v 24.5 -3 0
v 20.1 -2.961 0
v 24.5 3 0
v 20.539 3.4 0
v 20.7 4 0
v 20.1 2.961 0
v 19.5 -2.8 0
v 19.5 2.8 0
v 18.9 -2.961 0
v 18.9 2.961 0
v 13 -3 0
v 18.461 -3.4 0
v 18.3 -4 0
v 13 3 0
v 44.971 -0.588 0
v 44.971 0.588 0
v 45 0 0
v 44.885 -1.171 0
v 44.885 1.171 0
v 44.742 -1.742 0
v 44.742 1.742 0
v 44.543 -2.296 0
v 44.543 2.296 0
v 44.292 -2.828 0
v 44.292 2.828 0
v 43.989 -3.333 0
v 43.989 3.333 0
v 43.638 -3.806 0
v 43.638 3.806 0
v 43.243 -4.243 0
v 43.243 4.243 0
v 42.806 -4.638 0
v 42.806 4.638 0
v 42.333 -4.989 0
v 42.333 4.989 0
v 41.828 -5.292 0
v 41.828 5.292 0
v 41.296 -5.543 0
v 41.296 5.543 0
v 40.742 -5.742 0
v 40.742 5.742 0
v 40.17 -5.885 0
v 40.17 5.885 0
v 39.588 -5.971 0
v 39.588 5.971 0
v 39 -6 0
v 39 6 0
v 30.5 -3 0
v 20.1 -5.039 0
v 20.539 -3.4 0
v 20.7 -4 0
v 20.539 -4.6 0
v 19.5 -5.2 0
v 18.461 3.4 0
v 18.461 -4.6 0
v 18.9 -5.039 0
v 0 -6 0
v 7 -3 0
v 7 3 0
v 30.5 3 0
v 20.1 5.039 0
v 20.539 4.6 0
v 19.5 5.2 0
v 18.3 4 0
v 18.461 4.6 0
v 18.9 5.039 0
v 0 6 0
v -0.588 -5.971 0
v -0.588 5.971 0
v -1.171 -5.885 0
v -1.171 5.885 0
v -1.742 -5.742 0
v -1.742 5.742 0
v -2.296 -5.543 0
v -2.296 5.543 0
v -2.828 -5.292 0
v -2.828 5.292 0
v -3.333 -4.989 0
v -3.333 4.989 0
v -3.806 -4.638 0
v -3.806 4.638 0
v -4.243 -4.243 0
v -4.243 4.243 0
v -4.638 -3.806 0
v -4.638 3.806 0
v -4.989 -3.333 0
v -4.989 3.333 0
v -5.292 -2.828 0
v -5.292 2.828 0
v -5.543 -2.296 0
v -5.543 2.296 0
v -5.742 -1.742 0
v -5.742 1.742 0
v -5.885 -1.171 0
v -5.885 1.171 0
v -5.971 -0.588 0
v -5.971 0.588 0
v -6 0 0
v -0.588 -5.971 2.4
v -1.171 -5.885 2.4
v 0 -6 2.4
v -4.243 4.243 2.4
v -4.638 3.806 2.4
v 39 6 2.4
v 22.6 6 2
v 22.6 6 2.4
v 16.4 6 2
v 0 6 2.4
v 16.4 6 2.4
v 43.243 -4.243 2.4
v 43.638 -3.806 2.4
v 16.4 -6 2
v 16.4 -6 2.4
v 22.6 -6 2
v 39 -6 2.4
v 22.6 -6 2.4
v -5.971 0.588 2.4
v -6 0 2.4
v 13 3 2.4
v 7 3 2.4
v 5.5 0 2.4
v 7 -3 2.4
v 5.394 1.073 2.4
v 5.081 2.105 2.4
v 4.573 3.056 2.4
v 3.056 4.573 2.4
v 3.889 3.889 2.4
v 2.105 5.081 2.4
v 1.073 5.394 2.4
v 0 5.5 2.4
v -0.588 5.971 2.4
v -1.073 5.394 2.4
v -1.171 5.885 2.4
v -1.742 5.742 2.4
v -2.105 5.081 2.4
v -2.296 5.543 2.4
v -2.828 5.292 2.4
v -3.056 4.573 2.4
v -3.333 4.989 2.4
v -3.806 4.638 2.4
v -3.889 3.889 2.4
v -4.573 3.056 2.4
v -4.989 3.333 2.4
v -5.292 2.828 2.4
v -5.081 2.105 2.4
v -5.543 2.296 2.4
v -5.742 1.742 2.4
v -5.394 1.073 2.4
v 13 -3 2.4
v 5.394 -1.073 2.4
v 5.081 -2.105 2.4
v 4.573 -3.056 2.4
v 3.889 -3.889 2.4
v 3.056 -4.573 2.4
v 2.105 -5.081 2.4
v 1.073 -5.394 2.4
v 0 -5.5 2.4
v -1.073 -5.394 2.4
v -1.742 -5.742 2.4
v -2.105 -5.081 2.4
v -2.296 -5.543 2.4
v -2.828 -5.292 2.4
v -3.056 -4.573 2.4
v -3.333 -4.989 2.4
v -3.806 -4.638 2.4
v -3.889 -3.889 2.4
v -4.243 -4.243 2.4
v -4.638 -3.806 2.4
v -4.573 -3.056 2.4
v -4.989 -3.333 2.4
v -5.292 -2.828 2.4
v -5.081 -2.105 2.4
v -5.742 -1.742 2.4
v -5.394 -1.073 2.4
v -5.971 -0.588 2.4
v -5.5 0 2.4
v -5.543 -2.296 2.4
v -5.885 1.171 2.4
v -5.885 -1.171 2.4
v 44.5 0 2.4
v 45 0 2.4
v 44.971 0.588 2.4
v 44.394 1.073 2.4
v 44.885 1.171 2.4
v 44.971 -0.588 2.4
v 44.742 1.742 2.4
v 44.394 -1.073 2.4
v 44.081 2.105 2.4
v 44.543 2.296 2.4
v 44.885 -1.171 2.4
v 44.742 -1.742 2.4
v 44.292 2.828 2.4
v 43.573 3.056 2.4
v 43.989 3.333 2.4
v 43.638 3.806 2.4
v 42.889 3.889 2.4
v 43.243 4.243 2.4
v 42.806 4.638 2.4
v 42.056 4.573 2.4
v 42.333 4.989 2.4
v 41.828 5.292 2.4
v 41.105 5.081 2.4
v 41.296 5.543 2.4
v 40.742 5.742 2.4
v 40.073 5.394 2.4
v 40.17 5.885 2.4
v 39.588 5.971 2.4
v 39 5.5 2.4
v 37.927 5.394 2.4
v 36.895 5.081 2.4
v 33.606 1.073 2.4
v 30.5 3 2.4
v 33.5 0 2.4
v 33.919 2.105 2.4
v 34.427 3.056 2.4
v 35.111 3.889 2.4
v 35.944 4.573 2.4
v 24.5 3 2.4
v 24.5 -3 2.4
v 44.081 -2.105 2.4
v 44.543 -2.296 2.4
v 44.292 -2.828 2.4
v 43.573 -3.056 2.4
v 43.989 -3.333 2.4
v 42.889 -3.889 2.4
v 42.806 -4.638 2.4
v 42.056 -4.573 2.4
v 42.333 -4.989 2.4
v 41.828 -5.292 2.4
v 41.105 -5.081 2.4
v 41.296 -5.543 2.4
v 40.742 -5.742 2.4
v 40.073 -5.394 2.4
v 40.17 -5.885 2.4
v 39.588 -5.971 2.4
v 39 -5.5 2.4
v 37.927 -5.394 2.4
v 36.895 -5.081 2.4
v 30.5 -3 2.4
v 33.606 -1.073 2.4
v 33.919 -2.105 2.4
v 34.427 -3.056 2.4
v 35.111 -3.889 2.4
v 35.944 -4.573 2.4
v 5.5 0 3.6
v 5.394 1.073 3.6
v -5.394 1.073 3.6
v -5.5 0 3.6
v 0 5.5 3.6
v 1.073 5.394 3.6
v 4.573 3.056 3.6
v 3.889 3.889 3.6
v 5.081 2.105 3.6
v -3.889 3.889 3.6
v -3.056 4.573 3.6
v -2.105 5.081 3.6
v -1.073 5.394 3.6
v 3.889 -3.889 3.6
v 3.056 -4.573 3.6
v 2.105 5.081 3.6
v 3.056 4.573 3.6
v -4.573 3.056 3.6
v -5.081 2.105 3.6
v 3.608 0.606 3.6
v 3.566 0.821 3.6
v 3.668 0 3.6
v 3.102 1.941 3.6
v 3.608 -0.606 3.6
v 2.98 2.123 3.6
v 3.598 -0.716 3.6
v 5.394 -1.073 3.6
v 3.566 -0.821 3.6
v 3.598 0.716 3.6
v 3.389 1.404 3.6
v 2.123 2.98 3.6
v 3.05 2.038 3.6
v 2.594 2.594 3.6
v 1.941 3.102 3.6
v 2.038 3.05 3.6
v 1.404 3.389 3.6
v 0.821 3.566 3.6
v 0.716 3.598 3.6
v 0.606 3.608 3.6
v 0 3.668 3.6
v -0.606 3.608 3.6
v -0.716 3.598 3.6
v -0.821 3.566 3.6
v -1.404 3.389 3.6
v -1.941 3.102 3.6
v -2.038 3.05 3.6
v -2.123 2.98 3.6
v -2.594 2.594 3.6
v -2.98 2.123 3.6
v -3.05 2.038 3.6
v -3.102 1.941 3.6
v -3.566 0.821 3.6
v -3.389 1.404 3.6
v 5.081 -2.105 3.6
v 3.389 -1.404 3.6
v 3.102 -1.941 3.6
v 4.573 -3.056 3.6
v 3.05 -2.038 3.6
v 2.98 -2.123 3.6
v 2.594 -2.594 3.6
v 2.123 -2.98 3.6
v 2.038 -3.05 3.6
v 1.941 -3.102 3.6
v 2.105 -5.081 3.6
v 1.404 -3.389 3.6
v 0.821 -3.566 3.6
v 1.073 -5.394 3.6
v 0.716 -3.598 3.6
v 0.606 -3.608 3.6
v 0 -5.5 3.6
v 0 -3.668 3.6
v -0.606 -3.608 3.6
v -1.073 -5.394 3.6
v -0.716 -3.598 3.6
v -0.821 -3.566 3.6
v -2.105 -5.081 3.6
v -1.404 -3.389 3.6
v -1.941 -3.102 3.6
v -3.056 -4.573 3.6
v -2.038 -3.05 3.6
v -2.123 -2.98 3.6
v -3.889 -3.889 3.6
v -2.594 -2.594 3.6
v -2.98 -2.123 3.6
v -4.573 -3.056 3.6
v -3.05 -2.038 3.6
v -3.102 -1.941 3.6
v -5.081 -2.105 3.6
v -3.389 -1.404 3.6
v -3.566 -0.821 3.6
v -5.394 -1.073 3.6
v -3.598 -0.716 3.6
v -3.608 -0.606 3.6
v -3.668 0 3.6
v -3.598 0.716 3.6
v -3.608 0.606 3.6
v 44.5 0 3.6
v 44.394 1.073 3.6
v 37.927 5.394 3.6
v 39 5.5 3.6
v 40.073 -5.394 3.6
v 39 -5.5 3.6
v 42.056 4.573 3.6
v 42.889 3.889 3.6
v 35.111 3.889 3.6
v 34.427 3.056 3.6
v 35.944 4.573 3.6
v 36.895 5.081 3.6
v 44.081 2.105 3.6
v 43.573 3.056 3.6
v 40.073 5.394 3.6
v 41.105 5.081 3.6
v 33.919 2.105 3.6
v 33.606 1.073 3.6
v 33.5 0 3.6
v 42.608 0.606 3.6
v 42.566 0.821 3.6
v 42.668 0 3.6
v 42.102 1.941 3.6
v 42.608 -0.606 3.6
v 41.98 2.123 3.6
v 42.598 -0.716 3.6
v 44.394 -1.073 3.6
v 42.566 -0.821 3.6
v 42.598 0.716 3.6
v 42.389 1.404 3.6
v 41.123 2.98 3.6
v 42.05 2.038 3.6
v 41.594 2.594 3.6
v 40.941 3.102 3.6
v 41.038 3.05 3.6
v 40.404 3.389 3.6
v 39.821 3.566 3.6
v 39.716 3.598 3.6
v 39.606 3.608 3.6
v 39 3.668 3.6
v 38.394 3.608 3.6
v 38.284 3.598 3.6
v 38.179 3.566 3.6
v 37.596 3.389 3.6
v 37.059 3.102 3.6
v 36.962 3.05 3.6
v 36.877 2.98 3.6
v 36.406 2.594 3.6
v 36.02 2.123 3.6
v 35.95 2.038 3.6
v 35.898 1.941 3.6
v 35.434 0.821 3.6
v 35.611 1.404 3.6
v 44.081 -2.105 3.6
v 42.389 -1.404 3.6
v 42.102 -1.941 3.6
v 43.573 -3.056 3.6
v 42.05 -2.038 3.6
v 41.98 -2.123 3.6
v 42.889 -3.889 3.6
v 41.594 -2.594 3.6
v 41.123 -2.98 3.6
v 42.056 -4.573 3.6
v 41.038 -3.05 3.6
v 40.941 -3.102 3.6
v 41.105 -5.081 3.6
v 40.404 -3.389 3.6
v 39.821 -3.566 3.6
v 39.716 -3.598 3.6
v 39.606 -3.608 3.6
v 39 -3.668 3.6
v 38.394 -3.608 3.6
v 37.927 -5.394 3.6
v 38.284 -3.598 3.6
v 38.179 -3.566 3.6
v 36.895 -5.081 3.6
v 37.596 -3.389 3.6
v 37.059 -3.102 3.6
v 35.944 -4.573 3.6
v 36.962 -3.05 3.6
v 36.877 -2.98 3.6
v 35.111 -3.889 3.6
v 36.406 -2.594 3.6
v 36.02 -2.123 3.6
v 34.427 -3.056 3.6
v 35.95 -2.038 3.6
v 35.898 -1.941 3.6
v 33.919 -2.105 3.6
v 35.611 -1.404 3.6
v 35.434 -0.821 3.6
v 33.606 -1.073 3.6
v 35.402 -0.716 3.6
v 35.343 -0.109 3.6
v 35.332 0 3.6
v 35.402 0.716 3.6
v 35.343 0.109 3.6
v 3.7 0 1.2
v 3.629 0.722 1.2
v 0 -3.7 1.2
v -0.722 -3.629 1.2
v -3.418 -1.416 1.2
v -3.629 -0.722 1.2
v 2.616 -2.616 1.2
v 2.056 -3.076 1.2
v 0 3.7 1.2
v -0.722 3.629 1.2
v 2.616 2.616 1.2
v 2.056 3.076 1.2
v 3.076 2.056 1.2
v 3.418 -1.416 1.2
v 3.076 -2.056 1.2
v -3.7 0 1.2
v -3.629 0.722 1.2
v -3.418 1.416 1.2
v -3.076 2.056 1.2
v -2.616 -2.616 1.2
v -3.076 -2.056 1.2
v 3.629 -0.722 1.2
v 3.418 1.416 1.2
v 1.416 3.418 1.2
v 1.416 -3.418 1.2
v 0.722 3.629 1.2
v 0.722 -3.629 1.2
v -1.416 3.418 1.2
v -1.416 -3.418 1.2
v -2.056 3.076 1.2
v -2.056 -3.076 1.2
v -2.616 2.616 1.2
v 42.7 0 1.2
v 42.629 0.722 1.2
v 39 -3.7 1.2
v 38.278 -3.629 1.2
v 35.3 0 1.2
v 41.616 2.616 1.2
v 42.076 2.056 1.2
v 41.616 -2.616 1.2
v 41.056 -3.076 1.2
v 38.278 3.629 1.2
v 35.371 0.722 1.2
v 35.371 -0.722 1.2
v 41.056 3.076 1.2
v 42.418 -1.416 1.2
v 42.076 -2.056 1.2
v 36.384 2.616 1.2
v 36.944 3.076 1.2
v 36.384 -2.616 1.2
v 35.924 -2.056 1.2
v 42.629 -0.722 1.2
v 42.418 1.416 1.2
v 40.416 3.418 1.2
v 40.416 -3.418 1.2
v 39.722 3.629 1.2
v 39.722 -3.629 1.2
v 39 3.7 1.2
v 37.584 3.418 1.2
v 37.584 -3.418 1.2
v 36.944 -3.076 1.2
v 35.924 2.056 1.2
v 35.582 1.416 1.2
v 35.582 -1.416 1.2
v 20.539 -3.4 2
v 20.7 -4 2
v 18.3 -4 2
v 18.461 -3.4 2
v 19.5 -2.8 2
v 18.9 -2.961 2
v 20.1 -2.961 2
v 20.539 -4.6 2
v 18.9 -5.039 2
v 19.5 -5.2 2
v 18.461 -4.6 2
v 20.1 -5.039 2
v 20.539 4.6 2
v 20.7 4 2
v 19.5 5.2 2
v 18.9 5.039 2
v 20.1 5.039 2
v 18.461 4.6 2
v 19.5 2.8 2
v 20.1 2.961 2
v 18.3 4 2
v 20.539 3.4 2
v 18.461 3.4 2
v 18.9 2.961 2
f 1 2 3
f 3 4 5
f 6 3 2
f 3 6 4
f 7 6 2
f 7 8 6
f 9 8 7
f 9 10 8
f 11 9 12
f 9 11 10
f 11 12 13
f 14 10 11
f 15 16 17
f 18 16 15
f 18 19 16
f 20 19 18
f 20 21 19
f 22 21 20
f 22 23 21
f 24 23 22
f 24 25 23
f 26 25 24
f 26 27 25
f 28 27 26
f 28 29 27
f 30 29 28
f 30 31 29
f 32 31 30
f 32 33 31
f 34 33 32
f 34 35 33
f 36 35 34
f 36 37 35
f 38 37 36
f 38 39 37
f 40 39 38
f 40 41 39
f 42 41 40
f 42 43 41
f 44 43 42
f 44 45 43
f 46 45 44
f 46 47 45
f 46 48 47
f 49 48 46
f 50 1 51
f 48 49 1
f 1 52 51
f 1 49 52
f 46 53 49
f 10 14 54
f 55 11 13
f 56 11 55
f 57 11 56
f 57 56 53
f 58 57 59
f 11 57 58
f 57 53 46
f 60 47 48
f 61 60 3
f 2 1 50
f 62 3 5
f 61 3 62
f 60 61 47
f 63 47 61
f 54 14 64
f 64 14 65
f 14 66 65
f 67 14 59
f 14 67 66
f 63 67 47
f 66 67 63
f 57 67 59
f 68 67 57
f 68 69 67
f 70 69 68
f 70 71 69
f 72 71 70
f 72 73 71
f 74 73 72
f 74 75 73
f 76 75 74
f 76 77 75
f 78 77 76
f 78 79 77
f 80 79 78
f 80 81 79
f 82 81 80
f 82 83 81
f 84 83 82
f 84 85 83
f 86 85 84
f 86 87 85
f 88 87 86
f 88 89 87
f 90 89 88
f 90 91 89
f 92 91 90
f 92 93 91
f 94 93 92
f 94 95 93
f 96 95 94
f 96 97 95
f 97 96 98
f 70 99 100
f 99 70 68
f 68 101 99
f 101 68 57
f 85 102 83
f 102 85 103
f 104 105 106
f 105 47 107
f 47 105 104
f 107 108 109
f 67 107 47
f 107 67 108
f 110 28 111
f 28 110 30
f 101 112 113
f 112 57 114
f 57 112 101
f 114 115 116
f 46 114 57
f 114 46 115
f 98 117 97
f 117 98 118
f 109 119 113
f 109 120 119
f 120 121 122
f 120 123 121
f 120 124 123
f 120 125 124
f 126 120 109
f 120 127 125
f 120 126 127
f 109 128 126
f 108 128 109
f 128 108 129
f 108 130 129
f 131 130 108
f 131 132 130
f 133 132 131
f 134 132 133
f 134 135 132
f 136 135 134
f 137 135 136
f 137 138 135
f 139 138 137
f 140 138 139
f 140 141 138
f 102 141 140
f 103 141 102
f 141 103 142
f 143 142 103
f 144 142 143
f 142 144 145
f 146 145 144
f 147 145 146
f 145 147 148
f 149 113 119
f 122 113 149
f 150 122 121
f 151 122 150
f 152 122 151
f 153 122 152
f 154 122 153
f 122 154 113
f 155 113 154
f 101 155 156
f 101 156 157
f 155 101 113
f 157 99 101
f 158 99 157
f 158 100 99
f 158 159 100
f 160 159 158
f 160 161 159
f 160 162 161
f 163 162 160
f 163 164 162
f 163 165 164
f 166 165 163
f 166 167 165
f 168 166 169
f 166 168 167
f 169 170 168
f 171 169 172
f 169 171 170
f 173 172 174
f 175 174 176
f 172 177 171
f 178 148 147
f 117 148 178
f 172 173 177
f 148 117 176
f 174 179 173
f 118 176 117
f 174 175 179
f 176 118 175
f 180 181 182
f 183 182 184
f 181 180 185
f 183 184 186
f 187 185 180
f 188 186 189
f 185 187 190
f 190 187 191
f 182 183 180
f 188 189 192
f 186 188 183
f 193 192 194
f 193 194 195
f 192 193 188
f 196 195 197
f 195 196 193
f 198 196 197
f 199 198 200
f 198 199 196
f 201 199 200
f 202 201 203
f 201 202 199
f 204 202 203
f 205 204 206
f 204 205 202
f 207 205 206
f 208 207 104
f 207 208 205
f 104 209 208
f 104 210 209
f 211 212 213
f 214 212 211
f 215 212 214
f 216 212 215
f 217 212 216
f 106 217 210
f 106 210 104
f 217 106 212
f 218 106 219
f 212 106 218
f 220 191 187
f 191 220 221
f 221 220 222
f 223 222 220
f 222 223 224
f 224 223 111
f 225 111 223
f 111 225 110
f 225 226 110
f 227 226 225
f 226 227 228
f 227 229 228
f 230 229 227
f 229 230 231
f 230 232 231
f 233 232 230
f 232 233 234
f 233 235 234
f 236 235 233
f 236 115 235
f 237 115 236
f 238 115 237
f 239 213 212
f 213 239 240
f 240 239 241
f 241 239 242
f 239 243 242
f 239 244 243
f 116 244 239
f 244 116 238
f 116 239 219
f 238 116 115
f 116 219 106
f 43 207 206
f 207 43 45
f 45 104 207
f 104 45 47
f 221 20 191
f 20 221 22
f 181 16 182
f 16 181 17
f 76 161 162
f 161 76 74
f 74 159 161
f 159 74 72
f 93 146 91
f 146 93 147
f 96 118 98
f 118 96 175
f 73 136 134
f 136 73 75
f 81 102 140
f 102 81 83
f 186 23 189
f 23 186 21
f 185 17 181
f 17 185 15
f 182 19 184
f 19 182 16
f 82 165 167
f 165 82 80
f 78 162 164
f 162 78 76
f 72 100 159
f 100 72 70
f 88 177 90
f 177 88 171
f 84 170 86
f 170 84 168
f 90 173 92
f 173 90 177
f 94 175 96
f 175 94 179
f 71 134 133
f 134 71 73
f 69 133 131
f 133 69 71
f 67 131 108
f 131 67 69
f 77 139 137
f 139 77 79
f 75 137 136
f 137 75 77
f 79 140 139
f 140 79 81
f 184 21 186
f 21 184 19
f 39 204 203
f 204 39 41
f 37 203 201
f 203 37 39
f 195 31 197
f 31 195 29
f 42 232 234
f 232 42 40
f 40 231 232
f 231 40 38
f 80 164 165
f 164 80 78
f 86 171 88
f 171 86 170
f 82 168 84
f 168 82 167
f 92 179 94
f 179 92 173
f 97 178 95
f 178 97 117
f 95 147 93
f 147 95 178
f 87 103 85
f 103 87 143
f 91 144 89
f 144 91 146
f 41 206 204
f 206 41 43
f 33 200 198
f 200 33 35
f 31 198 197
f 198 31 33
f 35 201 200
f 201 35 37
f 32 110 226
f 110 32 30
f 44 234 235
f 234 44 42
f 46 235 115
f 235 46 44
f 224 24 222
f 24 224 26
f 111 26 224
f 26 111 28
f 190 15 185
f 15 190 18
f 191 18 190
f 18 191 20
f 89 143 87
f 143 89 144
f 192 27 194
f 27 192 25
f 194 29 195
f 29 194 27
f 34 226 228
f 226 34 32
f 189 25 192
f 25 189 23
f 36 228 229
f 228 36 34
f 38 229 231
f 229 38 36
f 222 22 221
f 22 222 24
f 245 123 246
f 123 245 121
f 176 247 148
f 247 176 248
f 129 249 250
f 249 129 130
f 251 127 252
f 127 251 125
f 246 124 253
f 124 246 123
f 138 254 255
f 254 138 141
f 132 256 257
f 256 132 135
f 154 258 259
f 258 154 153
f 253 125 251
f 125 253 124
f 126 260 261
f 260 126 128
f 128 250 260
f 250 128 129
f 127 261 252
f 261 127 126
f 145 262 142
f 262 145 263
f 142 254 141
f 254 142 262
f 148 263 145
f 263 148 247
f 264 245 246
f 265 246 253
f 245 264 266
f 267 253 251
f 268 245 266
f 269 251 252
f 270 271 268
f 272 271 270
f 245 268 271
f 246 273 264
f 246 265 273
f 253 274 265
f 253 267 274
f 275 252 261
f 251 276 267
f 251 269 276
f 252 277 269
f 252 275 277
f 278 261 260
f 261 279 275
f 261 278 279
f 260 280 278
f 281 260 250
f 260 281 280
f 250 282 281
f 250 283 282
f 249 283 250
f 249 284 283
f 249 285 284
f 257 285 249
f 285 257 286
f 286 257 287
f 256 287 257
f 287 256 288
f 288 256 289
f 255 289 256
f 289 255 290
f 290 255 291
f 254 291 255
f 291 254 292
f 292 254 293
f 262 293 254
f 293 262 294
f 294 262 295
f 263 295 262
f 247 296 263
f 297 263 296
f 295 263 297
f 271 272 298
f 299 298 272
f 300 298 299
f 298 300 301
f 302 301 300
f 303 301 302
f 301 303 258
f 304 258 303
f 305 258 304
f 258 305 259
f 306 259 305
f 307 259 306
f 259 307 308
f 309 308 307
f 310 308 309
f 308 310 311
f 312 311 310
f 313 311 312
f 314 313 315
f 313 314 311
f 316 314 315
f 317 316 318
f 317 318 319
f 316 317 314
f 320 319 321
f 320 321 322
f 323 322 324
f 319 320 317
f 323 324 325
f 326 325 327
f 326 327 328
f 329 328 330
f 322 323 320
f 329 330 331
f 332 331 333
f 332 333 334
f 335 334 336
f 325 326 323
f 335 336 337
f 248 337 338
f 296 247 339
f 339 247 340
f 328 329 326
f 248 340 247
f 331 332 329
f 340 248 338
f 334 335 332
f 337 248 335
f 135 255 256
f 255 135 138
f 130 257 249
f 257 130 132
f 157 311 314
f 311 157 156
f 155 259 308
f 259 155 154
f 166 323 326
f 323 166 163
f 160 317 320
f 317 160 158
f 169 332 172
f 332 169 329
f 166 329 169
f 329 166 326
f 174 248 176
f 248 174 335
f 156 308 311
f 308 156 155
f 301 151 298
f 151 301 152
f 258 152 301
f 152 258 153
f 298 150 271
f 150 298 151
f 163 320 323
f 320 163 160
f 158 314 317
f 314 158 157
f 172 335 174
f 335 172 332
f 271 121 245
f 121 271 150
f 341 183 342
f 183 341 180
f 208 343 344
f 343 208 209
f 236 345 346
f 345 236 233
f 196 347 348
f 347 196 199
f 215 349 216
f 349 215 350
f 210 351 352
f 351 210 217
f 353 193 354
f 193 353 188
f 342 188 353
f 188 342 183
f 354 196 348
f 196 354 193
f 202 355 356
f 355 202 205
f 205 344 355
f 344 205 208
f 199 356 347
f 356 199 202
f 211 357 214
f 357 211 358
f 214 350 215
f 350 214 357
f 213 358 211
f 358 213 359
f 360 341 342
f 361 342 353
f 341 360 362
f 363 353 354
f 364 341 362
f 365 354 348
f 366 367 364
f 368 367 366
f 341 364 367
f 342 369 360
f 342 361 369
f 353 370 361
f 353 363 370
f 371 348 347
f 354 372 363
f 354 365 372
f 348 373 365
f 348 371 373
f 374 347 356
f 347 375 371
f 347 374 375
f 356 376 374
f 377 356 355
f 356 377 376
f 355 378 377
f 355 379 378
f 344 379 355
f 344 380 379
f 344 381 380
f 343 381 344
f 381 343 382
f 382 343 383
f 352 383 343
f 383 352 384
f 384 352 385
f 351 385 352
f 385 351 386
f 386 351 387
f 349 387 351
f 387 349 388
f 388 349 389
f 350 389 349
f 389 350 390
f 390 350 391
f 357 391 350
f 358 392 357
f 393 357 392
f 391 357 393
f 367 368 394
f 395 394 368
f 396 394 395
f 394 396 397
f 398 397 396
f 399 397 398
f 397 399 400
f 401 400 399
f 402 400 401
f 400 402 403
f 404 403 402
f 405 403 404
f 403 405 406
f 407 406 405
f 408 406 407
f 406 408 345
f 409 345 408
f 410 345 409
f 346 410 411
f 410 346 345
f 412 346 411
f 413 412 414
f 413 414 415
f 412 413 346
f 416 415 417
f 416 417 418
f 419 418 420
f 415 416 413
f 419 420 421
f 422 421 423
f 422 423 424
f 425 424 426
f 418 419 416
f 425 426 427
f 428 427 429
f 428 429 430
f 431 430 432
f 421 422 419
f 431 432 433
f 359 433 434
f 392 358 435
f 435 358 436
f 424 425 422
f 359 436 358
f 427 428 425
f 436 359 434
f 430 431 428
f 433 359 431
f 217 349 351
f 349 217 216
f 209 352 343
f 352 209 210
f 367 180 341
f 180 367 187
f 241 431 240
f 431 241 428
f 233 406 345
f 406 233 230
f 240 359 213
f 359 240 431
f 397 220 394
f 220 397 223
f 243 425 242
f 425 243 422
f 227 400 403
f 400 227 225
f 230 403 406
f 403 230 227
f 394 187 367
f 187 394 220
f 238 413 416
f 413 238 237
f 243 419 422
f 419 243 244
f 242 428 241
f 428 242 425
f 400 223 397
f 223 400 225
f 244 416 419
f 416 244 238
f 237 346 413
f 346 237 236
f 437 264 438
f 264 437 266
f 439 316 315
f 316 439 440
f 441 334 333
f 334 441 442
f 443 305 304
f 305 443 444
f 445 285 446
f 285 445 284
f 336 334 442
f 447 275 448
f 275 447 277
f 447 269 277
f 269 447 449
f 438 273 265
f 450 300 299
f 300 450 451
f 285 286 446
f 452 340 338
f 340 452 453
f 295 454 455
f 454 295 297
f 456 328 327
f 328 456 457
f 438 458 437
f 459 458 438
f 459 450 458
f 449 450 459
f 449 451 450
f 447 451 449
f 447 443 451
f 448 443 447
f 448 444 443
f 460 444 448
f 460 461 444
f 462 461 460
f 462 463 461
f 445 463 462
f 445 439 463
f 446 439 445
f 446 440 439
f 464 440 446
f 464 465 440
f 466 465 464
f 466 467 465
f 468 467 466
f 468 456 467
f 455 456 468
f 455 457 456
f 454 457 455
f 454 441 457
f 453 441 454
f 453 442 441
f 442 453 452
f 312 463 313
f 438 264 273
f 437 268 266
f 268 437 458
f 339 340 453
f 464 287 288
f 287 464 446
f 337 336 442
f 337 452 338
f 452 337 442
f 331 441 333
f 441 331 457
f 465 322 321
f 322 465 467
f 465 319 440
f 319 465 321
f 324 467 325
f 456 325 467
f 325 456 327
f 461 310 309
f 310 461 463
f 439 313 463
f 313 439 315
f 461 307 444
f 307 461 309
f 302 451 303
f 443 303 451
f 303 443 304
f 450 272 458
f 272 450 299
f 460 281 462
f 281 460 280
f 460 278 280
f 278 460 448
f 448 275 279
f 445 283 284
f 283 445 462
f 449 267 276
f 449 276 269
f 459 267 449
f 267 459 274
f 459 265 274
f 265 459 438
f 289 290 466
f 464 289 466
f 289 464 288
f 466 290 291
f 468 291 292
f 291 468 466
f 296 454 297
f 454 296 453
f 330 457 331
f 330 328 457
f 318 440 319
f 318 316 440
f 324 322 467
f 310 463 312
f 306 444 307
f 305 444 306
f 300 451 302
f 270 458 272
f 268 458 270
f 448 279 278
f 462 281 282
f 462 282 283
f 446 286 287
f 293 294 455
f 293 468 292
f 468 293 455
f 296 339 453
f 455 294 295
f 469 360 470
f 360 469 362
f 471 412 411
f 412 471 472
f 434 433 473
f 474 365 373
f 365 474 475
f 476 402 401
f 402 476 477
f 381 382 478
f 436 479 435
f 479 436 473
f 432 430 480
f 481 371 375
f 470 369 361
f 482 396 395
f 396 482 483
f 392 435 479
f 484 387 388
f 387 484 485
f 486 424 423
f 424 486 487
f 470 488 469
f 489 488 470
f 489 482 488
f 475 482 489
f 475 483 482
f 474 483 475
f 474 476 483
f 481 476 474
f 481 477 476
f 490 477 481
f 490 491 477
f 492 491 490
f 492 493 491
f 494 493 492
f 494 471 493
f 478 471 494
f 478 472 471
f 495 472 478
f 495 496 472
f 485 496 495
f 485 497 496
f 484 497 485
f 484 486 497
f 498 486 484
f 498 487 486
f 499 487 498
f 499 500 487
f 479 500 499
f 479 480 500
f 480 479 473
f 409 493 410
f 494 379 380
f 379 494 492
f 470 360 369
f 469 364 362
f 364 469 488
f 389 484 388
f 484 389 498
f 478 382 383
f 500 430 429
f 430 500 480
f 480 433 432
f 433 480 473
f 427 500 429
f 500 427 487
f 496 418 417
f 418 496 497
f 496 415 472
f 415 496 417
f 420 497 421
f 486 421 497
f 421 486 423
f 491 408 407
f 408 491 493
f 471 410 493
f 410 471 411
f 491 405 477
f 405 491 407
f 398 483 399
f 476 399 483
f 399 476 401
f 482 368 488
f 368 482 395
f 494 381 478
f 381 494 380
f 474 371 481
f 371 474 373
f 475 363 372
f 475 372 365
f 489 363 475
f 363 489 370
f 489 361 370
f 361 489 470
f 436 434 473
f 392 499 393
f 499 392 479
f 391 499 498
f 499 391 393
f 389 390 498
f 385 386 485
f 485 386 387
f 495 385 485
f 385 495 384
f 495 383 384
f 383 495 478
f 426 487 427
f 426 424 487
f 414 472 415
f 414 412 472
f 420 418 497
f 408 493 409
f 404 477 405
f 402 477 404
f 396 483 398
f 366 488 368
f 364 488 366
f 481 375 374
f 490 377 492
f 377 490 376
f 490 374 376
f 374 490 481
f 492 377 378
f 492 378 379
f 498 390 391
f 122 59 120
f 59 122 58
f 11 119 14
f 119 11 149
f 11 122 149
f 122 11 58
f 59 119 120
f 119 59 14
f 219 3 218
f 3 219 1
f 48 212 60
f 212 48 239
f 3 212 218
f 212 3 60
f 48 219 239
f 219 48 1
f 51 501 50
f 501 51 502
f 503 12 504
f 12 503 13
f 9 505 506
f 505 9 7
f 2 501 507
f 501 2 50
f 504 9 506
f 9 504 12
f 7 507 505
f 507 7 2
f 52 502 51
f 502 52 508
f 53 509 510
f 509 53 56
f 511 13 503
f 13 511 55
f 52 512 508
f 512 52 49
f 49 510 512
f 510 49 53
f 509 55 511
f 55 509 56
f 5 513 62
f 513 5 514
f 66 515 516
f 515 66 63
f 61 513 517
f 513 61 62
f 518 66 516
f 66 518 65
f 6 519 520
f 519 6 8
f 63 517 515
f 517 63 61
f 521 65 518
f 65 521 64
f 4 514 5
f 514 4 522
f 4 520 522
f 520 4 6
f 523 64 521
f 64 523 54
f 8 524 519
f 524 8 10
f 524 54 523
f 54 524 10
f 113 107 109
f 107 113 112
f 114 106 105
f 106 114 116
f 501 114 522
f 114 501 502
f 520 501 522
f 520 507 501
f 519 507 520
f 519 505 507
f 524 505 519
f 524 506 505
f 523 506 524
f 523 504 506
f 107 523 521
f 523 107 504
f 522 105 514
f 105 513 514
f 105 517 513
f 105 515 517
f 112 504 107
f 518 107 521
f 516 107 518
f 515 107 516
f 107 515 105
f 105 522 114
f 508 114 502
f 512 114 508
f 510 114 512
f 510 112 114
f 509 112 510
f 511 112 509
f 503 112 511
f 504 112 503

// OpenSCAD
mount_y = 12;
mount_x = 51-mount_y;

bearing_r = 3.7;
bearing_h = 1.2;

thick   = 2.4;

difference() {
    union() {
        hull() {
            cylinder(r=mount_y/2, h=thick,$fn = 64);
            translate([mount_x,0,0])
            cylinder(r=mount_y/2, h=thick,$fn = 64);
            
        }
        
            translate([0,0,bearing_h])
            cylinder(r=bearing_r+1.8, h=2.4, $fn=32);
            translate([mount_x,0,bearing_h])
            cylinder(r=bearing_r+1.8, h=2.4, $fn=32);
    }
    translate([0,0,bearing_h])
    cylinder(r1=bearing_r,r2=bearing_r-0.2, h=15, $fn=32);
    translate([mount_x,0,bearing_h])
    cylinder(r1=bearing_r,r2=bearing_r-0.2, h=15, $fn=32);
    
    translate([10,0,0])
    cube([6,6,12], center= true);
    translate([8+mount_x/2,0,0])
    cube([6,6,12], center= true);
    
    translate([mount_x/2,-4,-.1])
    cylinder(r=1.2, h=15, $fn=12);
    translate([mount_x/2,4,-.1])
    cylinder(r=1.2, h=15, $fn=12);
    
    translate([mount_x/2-3.1, -mount_y/2-.1,2])
    cube([6.2,mount_y+.2,8]);
}
